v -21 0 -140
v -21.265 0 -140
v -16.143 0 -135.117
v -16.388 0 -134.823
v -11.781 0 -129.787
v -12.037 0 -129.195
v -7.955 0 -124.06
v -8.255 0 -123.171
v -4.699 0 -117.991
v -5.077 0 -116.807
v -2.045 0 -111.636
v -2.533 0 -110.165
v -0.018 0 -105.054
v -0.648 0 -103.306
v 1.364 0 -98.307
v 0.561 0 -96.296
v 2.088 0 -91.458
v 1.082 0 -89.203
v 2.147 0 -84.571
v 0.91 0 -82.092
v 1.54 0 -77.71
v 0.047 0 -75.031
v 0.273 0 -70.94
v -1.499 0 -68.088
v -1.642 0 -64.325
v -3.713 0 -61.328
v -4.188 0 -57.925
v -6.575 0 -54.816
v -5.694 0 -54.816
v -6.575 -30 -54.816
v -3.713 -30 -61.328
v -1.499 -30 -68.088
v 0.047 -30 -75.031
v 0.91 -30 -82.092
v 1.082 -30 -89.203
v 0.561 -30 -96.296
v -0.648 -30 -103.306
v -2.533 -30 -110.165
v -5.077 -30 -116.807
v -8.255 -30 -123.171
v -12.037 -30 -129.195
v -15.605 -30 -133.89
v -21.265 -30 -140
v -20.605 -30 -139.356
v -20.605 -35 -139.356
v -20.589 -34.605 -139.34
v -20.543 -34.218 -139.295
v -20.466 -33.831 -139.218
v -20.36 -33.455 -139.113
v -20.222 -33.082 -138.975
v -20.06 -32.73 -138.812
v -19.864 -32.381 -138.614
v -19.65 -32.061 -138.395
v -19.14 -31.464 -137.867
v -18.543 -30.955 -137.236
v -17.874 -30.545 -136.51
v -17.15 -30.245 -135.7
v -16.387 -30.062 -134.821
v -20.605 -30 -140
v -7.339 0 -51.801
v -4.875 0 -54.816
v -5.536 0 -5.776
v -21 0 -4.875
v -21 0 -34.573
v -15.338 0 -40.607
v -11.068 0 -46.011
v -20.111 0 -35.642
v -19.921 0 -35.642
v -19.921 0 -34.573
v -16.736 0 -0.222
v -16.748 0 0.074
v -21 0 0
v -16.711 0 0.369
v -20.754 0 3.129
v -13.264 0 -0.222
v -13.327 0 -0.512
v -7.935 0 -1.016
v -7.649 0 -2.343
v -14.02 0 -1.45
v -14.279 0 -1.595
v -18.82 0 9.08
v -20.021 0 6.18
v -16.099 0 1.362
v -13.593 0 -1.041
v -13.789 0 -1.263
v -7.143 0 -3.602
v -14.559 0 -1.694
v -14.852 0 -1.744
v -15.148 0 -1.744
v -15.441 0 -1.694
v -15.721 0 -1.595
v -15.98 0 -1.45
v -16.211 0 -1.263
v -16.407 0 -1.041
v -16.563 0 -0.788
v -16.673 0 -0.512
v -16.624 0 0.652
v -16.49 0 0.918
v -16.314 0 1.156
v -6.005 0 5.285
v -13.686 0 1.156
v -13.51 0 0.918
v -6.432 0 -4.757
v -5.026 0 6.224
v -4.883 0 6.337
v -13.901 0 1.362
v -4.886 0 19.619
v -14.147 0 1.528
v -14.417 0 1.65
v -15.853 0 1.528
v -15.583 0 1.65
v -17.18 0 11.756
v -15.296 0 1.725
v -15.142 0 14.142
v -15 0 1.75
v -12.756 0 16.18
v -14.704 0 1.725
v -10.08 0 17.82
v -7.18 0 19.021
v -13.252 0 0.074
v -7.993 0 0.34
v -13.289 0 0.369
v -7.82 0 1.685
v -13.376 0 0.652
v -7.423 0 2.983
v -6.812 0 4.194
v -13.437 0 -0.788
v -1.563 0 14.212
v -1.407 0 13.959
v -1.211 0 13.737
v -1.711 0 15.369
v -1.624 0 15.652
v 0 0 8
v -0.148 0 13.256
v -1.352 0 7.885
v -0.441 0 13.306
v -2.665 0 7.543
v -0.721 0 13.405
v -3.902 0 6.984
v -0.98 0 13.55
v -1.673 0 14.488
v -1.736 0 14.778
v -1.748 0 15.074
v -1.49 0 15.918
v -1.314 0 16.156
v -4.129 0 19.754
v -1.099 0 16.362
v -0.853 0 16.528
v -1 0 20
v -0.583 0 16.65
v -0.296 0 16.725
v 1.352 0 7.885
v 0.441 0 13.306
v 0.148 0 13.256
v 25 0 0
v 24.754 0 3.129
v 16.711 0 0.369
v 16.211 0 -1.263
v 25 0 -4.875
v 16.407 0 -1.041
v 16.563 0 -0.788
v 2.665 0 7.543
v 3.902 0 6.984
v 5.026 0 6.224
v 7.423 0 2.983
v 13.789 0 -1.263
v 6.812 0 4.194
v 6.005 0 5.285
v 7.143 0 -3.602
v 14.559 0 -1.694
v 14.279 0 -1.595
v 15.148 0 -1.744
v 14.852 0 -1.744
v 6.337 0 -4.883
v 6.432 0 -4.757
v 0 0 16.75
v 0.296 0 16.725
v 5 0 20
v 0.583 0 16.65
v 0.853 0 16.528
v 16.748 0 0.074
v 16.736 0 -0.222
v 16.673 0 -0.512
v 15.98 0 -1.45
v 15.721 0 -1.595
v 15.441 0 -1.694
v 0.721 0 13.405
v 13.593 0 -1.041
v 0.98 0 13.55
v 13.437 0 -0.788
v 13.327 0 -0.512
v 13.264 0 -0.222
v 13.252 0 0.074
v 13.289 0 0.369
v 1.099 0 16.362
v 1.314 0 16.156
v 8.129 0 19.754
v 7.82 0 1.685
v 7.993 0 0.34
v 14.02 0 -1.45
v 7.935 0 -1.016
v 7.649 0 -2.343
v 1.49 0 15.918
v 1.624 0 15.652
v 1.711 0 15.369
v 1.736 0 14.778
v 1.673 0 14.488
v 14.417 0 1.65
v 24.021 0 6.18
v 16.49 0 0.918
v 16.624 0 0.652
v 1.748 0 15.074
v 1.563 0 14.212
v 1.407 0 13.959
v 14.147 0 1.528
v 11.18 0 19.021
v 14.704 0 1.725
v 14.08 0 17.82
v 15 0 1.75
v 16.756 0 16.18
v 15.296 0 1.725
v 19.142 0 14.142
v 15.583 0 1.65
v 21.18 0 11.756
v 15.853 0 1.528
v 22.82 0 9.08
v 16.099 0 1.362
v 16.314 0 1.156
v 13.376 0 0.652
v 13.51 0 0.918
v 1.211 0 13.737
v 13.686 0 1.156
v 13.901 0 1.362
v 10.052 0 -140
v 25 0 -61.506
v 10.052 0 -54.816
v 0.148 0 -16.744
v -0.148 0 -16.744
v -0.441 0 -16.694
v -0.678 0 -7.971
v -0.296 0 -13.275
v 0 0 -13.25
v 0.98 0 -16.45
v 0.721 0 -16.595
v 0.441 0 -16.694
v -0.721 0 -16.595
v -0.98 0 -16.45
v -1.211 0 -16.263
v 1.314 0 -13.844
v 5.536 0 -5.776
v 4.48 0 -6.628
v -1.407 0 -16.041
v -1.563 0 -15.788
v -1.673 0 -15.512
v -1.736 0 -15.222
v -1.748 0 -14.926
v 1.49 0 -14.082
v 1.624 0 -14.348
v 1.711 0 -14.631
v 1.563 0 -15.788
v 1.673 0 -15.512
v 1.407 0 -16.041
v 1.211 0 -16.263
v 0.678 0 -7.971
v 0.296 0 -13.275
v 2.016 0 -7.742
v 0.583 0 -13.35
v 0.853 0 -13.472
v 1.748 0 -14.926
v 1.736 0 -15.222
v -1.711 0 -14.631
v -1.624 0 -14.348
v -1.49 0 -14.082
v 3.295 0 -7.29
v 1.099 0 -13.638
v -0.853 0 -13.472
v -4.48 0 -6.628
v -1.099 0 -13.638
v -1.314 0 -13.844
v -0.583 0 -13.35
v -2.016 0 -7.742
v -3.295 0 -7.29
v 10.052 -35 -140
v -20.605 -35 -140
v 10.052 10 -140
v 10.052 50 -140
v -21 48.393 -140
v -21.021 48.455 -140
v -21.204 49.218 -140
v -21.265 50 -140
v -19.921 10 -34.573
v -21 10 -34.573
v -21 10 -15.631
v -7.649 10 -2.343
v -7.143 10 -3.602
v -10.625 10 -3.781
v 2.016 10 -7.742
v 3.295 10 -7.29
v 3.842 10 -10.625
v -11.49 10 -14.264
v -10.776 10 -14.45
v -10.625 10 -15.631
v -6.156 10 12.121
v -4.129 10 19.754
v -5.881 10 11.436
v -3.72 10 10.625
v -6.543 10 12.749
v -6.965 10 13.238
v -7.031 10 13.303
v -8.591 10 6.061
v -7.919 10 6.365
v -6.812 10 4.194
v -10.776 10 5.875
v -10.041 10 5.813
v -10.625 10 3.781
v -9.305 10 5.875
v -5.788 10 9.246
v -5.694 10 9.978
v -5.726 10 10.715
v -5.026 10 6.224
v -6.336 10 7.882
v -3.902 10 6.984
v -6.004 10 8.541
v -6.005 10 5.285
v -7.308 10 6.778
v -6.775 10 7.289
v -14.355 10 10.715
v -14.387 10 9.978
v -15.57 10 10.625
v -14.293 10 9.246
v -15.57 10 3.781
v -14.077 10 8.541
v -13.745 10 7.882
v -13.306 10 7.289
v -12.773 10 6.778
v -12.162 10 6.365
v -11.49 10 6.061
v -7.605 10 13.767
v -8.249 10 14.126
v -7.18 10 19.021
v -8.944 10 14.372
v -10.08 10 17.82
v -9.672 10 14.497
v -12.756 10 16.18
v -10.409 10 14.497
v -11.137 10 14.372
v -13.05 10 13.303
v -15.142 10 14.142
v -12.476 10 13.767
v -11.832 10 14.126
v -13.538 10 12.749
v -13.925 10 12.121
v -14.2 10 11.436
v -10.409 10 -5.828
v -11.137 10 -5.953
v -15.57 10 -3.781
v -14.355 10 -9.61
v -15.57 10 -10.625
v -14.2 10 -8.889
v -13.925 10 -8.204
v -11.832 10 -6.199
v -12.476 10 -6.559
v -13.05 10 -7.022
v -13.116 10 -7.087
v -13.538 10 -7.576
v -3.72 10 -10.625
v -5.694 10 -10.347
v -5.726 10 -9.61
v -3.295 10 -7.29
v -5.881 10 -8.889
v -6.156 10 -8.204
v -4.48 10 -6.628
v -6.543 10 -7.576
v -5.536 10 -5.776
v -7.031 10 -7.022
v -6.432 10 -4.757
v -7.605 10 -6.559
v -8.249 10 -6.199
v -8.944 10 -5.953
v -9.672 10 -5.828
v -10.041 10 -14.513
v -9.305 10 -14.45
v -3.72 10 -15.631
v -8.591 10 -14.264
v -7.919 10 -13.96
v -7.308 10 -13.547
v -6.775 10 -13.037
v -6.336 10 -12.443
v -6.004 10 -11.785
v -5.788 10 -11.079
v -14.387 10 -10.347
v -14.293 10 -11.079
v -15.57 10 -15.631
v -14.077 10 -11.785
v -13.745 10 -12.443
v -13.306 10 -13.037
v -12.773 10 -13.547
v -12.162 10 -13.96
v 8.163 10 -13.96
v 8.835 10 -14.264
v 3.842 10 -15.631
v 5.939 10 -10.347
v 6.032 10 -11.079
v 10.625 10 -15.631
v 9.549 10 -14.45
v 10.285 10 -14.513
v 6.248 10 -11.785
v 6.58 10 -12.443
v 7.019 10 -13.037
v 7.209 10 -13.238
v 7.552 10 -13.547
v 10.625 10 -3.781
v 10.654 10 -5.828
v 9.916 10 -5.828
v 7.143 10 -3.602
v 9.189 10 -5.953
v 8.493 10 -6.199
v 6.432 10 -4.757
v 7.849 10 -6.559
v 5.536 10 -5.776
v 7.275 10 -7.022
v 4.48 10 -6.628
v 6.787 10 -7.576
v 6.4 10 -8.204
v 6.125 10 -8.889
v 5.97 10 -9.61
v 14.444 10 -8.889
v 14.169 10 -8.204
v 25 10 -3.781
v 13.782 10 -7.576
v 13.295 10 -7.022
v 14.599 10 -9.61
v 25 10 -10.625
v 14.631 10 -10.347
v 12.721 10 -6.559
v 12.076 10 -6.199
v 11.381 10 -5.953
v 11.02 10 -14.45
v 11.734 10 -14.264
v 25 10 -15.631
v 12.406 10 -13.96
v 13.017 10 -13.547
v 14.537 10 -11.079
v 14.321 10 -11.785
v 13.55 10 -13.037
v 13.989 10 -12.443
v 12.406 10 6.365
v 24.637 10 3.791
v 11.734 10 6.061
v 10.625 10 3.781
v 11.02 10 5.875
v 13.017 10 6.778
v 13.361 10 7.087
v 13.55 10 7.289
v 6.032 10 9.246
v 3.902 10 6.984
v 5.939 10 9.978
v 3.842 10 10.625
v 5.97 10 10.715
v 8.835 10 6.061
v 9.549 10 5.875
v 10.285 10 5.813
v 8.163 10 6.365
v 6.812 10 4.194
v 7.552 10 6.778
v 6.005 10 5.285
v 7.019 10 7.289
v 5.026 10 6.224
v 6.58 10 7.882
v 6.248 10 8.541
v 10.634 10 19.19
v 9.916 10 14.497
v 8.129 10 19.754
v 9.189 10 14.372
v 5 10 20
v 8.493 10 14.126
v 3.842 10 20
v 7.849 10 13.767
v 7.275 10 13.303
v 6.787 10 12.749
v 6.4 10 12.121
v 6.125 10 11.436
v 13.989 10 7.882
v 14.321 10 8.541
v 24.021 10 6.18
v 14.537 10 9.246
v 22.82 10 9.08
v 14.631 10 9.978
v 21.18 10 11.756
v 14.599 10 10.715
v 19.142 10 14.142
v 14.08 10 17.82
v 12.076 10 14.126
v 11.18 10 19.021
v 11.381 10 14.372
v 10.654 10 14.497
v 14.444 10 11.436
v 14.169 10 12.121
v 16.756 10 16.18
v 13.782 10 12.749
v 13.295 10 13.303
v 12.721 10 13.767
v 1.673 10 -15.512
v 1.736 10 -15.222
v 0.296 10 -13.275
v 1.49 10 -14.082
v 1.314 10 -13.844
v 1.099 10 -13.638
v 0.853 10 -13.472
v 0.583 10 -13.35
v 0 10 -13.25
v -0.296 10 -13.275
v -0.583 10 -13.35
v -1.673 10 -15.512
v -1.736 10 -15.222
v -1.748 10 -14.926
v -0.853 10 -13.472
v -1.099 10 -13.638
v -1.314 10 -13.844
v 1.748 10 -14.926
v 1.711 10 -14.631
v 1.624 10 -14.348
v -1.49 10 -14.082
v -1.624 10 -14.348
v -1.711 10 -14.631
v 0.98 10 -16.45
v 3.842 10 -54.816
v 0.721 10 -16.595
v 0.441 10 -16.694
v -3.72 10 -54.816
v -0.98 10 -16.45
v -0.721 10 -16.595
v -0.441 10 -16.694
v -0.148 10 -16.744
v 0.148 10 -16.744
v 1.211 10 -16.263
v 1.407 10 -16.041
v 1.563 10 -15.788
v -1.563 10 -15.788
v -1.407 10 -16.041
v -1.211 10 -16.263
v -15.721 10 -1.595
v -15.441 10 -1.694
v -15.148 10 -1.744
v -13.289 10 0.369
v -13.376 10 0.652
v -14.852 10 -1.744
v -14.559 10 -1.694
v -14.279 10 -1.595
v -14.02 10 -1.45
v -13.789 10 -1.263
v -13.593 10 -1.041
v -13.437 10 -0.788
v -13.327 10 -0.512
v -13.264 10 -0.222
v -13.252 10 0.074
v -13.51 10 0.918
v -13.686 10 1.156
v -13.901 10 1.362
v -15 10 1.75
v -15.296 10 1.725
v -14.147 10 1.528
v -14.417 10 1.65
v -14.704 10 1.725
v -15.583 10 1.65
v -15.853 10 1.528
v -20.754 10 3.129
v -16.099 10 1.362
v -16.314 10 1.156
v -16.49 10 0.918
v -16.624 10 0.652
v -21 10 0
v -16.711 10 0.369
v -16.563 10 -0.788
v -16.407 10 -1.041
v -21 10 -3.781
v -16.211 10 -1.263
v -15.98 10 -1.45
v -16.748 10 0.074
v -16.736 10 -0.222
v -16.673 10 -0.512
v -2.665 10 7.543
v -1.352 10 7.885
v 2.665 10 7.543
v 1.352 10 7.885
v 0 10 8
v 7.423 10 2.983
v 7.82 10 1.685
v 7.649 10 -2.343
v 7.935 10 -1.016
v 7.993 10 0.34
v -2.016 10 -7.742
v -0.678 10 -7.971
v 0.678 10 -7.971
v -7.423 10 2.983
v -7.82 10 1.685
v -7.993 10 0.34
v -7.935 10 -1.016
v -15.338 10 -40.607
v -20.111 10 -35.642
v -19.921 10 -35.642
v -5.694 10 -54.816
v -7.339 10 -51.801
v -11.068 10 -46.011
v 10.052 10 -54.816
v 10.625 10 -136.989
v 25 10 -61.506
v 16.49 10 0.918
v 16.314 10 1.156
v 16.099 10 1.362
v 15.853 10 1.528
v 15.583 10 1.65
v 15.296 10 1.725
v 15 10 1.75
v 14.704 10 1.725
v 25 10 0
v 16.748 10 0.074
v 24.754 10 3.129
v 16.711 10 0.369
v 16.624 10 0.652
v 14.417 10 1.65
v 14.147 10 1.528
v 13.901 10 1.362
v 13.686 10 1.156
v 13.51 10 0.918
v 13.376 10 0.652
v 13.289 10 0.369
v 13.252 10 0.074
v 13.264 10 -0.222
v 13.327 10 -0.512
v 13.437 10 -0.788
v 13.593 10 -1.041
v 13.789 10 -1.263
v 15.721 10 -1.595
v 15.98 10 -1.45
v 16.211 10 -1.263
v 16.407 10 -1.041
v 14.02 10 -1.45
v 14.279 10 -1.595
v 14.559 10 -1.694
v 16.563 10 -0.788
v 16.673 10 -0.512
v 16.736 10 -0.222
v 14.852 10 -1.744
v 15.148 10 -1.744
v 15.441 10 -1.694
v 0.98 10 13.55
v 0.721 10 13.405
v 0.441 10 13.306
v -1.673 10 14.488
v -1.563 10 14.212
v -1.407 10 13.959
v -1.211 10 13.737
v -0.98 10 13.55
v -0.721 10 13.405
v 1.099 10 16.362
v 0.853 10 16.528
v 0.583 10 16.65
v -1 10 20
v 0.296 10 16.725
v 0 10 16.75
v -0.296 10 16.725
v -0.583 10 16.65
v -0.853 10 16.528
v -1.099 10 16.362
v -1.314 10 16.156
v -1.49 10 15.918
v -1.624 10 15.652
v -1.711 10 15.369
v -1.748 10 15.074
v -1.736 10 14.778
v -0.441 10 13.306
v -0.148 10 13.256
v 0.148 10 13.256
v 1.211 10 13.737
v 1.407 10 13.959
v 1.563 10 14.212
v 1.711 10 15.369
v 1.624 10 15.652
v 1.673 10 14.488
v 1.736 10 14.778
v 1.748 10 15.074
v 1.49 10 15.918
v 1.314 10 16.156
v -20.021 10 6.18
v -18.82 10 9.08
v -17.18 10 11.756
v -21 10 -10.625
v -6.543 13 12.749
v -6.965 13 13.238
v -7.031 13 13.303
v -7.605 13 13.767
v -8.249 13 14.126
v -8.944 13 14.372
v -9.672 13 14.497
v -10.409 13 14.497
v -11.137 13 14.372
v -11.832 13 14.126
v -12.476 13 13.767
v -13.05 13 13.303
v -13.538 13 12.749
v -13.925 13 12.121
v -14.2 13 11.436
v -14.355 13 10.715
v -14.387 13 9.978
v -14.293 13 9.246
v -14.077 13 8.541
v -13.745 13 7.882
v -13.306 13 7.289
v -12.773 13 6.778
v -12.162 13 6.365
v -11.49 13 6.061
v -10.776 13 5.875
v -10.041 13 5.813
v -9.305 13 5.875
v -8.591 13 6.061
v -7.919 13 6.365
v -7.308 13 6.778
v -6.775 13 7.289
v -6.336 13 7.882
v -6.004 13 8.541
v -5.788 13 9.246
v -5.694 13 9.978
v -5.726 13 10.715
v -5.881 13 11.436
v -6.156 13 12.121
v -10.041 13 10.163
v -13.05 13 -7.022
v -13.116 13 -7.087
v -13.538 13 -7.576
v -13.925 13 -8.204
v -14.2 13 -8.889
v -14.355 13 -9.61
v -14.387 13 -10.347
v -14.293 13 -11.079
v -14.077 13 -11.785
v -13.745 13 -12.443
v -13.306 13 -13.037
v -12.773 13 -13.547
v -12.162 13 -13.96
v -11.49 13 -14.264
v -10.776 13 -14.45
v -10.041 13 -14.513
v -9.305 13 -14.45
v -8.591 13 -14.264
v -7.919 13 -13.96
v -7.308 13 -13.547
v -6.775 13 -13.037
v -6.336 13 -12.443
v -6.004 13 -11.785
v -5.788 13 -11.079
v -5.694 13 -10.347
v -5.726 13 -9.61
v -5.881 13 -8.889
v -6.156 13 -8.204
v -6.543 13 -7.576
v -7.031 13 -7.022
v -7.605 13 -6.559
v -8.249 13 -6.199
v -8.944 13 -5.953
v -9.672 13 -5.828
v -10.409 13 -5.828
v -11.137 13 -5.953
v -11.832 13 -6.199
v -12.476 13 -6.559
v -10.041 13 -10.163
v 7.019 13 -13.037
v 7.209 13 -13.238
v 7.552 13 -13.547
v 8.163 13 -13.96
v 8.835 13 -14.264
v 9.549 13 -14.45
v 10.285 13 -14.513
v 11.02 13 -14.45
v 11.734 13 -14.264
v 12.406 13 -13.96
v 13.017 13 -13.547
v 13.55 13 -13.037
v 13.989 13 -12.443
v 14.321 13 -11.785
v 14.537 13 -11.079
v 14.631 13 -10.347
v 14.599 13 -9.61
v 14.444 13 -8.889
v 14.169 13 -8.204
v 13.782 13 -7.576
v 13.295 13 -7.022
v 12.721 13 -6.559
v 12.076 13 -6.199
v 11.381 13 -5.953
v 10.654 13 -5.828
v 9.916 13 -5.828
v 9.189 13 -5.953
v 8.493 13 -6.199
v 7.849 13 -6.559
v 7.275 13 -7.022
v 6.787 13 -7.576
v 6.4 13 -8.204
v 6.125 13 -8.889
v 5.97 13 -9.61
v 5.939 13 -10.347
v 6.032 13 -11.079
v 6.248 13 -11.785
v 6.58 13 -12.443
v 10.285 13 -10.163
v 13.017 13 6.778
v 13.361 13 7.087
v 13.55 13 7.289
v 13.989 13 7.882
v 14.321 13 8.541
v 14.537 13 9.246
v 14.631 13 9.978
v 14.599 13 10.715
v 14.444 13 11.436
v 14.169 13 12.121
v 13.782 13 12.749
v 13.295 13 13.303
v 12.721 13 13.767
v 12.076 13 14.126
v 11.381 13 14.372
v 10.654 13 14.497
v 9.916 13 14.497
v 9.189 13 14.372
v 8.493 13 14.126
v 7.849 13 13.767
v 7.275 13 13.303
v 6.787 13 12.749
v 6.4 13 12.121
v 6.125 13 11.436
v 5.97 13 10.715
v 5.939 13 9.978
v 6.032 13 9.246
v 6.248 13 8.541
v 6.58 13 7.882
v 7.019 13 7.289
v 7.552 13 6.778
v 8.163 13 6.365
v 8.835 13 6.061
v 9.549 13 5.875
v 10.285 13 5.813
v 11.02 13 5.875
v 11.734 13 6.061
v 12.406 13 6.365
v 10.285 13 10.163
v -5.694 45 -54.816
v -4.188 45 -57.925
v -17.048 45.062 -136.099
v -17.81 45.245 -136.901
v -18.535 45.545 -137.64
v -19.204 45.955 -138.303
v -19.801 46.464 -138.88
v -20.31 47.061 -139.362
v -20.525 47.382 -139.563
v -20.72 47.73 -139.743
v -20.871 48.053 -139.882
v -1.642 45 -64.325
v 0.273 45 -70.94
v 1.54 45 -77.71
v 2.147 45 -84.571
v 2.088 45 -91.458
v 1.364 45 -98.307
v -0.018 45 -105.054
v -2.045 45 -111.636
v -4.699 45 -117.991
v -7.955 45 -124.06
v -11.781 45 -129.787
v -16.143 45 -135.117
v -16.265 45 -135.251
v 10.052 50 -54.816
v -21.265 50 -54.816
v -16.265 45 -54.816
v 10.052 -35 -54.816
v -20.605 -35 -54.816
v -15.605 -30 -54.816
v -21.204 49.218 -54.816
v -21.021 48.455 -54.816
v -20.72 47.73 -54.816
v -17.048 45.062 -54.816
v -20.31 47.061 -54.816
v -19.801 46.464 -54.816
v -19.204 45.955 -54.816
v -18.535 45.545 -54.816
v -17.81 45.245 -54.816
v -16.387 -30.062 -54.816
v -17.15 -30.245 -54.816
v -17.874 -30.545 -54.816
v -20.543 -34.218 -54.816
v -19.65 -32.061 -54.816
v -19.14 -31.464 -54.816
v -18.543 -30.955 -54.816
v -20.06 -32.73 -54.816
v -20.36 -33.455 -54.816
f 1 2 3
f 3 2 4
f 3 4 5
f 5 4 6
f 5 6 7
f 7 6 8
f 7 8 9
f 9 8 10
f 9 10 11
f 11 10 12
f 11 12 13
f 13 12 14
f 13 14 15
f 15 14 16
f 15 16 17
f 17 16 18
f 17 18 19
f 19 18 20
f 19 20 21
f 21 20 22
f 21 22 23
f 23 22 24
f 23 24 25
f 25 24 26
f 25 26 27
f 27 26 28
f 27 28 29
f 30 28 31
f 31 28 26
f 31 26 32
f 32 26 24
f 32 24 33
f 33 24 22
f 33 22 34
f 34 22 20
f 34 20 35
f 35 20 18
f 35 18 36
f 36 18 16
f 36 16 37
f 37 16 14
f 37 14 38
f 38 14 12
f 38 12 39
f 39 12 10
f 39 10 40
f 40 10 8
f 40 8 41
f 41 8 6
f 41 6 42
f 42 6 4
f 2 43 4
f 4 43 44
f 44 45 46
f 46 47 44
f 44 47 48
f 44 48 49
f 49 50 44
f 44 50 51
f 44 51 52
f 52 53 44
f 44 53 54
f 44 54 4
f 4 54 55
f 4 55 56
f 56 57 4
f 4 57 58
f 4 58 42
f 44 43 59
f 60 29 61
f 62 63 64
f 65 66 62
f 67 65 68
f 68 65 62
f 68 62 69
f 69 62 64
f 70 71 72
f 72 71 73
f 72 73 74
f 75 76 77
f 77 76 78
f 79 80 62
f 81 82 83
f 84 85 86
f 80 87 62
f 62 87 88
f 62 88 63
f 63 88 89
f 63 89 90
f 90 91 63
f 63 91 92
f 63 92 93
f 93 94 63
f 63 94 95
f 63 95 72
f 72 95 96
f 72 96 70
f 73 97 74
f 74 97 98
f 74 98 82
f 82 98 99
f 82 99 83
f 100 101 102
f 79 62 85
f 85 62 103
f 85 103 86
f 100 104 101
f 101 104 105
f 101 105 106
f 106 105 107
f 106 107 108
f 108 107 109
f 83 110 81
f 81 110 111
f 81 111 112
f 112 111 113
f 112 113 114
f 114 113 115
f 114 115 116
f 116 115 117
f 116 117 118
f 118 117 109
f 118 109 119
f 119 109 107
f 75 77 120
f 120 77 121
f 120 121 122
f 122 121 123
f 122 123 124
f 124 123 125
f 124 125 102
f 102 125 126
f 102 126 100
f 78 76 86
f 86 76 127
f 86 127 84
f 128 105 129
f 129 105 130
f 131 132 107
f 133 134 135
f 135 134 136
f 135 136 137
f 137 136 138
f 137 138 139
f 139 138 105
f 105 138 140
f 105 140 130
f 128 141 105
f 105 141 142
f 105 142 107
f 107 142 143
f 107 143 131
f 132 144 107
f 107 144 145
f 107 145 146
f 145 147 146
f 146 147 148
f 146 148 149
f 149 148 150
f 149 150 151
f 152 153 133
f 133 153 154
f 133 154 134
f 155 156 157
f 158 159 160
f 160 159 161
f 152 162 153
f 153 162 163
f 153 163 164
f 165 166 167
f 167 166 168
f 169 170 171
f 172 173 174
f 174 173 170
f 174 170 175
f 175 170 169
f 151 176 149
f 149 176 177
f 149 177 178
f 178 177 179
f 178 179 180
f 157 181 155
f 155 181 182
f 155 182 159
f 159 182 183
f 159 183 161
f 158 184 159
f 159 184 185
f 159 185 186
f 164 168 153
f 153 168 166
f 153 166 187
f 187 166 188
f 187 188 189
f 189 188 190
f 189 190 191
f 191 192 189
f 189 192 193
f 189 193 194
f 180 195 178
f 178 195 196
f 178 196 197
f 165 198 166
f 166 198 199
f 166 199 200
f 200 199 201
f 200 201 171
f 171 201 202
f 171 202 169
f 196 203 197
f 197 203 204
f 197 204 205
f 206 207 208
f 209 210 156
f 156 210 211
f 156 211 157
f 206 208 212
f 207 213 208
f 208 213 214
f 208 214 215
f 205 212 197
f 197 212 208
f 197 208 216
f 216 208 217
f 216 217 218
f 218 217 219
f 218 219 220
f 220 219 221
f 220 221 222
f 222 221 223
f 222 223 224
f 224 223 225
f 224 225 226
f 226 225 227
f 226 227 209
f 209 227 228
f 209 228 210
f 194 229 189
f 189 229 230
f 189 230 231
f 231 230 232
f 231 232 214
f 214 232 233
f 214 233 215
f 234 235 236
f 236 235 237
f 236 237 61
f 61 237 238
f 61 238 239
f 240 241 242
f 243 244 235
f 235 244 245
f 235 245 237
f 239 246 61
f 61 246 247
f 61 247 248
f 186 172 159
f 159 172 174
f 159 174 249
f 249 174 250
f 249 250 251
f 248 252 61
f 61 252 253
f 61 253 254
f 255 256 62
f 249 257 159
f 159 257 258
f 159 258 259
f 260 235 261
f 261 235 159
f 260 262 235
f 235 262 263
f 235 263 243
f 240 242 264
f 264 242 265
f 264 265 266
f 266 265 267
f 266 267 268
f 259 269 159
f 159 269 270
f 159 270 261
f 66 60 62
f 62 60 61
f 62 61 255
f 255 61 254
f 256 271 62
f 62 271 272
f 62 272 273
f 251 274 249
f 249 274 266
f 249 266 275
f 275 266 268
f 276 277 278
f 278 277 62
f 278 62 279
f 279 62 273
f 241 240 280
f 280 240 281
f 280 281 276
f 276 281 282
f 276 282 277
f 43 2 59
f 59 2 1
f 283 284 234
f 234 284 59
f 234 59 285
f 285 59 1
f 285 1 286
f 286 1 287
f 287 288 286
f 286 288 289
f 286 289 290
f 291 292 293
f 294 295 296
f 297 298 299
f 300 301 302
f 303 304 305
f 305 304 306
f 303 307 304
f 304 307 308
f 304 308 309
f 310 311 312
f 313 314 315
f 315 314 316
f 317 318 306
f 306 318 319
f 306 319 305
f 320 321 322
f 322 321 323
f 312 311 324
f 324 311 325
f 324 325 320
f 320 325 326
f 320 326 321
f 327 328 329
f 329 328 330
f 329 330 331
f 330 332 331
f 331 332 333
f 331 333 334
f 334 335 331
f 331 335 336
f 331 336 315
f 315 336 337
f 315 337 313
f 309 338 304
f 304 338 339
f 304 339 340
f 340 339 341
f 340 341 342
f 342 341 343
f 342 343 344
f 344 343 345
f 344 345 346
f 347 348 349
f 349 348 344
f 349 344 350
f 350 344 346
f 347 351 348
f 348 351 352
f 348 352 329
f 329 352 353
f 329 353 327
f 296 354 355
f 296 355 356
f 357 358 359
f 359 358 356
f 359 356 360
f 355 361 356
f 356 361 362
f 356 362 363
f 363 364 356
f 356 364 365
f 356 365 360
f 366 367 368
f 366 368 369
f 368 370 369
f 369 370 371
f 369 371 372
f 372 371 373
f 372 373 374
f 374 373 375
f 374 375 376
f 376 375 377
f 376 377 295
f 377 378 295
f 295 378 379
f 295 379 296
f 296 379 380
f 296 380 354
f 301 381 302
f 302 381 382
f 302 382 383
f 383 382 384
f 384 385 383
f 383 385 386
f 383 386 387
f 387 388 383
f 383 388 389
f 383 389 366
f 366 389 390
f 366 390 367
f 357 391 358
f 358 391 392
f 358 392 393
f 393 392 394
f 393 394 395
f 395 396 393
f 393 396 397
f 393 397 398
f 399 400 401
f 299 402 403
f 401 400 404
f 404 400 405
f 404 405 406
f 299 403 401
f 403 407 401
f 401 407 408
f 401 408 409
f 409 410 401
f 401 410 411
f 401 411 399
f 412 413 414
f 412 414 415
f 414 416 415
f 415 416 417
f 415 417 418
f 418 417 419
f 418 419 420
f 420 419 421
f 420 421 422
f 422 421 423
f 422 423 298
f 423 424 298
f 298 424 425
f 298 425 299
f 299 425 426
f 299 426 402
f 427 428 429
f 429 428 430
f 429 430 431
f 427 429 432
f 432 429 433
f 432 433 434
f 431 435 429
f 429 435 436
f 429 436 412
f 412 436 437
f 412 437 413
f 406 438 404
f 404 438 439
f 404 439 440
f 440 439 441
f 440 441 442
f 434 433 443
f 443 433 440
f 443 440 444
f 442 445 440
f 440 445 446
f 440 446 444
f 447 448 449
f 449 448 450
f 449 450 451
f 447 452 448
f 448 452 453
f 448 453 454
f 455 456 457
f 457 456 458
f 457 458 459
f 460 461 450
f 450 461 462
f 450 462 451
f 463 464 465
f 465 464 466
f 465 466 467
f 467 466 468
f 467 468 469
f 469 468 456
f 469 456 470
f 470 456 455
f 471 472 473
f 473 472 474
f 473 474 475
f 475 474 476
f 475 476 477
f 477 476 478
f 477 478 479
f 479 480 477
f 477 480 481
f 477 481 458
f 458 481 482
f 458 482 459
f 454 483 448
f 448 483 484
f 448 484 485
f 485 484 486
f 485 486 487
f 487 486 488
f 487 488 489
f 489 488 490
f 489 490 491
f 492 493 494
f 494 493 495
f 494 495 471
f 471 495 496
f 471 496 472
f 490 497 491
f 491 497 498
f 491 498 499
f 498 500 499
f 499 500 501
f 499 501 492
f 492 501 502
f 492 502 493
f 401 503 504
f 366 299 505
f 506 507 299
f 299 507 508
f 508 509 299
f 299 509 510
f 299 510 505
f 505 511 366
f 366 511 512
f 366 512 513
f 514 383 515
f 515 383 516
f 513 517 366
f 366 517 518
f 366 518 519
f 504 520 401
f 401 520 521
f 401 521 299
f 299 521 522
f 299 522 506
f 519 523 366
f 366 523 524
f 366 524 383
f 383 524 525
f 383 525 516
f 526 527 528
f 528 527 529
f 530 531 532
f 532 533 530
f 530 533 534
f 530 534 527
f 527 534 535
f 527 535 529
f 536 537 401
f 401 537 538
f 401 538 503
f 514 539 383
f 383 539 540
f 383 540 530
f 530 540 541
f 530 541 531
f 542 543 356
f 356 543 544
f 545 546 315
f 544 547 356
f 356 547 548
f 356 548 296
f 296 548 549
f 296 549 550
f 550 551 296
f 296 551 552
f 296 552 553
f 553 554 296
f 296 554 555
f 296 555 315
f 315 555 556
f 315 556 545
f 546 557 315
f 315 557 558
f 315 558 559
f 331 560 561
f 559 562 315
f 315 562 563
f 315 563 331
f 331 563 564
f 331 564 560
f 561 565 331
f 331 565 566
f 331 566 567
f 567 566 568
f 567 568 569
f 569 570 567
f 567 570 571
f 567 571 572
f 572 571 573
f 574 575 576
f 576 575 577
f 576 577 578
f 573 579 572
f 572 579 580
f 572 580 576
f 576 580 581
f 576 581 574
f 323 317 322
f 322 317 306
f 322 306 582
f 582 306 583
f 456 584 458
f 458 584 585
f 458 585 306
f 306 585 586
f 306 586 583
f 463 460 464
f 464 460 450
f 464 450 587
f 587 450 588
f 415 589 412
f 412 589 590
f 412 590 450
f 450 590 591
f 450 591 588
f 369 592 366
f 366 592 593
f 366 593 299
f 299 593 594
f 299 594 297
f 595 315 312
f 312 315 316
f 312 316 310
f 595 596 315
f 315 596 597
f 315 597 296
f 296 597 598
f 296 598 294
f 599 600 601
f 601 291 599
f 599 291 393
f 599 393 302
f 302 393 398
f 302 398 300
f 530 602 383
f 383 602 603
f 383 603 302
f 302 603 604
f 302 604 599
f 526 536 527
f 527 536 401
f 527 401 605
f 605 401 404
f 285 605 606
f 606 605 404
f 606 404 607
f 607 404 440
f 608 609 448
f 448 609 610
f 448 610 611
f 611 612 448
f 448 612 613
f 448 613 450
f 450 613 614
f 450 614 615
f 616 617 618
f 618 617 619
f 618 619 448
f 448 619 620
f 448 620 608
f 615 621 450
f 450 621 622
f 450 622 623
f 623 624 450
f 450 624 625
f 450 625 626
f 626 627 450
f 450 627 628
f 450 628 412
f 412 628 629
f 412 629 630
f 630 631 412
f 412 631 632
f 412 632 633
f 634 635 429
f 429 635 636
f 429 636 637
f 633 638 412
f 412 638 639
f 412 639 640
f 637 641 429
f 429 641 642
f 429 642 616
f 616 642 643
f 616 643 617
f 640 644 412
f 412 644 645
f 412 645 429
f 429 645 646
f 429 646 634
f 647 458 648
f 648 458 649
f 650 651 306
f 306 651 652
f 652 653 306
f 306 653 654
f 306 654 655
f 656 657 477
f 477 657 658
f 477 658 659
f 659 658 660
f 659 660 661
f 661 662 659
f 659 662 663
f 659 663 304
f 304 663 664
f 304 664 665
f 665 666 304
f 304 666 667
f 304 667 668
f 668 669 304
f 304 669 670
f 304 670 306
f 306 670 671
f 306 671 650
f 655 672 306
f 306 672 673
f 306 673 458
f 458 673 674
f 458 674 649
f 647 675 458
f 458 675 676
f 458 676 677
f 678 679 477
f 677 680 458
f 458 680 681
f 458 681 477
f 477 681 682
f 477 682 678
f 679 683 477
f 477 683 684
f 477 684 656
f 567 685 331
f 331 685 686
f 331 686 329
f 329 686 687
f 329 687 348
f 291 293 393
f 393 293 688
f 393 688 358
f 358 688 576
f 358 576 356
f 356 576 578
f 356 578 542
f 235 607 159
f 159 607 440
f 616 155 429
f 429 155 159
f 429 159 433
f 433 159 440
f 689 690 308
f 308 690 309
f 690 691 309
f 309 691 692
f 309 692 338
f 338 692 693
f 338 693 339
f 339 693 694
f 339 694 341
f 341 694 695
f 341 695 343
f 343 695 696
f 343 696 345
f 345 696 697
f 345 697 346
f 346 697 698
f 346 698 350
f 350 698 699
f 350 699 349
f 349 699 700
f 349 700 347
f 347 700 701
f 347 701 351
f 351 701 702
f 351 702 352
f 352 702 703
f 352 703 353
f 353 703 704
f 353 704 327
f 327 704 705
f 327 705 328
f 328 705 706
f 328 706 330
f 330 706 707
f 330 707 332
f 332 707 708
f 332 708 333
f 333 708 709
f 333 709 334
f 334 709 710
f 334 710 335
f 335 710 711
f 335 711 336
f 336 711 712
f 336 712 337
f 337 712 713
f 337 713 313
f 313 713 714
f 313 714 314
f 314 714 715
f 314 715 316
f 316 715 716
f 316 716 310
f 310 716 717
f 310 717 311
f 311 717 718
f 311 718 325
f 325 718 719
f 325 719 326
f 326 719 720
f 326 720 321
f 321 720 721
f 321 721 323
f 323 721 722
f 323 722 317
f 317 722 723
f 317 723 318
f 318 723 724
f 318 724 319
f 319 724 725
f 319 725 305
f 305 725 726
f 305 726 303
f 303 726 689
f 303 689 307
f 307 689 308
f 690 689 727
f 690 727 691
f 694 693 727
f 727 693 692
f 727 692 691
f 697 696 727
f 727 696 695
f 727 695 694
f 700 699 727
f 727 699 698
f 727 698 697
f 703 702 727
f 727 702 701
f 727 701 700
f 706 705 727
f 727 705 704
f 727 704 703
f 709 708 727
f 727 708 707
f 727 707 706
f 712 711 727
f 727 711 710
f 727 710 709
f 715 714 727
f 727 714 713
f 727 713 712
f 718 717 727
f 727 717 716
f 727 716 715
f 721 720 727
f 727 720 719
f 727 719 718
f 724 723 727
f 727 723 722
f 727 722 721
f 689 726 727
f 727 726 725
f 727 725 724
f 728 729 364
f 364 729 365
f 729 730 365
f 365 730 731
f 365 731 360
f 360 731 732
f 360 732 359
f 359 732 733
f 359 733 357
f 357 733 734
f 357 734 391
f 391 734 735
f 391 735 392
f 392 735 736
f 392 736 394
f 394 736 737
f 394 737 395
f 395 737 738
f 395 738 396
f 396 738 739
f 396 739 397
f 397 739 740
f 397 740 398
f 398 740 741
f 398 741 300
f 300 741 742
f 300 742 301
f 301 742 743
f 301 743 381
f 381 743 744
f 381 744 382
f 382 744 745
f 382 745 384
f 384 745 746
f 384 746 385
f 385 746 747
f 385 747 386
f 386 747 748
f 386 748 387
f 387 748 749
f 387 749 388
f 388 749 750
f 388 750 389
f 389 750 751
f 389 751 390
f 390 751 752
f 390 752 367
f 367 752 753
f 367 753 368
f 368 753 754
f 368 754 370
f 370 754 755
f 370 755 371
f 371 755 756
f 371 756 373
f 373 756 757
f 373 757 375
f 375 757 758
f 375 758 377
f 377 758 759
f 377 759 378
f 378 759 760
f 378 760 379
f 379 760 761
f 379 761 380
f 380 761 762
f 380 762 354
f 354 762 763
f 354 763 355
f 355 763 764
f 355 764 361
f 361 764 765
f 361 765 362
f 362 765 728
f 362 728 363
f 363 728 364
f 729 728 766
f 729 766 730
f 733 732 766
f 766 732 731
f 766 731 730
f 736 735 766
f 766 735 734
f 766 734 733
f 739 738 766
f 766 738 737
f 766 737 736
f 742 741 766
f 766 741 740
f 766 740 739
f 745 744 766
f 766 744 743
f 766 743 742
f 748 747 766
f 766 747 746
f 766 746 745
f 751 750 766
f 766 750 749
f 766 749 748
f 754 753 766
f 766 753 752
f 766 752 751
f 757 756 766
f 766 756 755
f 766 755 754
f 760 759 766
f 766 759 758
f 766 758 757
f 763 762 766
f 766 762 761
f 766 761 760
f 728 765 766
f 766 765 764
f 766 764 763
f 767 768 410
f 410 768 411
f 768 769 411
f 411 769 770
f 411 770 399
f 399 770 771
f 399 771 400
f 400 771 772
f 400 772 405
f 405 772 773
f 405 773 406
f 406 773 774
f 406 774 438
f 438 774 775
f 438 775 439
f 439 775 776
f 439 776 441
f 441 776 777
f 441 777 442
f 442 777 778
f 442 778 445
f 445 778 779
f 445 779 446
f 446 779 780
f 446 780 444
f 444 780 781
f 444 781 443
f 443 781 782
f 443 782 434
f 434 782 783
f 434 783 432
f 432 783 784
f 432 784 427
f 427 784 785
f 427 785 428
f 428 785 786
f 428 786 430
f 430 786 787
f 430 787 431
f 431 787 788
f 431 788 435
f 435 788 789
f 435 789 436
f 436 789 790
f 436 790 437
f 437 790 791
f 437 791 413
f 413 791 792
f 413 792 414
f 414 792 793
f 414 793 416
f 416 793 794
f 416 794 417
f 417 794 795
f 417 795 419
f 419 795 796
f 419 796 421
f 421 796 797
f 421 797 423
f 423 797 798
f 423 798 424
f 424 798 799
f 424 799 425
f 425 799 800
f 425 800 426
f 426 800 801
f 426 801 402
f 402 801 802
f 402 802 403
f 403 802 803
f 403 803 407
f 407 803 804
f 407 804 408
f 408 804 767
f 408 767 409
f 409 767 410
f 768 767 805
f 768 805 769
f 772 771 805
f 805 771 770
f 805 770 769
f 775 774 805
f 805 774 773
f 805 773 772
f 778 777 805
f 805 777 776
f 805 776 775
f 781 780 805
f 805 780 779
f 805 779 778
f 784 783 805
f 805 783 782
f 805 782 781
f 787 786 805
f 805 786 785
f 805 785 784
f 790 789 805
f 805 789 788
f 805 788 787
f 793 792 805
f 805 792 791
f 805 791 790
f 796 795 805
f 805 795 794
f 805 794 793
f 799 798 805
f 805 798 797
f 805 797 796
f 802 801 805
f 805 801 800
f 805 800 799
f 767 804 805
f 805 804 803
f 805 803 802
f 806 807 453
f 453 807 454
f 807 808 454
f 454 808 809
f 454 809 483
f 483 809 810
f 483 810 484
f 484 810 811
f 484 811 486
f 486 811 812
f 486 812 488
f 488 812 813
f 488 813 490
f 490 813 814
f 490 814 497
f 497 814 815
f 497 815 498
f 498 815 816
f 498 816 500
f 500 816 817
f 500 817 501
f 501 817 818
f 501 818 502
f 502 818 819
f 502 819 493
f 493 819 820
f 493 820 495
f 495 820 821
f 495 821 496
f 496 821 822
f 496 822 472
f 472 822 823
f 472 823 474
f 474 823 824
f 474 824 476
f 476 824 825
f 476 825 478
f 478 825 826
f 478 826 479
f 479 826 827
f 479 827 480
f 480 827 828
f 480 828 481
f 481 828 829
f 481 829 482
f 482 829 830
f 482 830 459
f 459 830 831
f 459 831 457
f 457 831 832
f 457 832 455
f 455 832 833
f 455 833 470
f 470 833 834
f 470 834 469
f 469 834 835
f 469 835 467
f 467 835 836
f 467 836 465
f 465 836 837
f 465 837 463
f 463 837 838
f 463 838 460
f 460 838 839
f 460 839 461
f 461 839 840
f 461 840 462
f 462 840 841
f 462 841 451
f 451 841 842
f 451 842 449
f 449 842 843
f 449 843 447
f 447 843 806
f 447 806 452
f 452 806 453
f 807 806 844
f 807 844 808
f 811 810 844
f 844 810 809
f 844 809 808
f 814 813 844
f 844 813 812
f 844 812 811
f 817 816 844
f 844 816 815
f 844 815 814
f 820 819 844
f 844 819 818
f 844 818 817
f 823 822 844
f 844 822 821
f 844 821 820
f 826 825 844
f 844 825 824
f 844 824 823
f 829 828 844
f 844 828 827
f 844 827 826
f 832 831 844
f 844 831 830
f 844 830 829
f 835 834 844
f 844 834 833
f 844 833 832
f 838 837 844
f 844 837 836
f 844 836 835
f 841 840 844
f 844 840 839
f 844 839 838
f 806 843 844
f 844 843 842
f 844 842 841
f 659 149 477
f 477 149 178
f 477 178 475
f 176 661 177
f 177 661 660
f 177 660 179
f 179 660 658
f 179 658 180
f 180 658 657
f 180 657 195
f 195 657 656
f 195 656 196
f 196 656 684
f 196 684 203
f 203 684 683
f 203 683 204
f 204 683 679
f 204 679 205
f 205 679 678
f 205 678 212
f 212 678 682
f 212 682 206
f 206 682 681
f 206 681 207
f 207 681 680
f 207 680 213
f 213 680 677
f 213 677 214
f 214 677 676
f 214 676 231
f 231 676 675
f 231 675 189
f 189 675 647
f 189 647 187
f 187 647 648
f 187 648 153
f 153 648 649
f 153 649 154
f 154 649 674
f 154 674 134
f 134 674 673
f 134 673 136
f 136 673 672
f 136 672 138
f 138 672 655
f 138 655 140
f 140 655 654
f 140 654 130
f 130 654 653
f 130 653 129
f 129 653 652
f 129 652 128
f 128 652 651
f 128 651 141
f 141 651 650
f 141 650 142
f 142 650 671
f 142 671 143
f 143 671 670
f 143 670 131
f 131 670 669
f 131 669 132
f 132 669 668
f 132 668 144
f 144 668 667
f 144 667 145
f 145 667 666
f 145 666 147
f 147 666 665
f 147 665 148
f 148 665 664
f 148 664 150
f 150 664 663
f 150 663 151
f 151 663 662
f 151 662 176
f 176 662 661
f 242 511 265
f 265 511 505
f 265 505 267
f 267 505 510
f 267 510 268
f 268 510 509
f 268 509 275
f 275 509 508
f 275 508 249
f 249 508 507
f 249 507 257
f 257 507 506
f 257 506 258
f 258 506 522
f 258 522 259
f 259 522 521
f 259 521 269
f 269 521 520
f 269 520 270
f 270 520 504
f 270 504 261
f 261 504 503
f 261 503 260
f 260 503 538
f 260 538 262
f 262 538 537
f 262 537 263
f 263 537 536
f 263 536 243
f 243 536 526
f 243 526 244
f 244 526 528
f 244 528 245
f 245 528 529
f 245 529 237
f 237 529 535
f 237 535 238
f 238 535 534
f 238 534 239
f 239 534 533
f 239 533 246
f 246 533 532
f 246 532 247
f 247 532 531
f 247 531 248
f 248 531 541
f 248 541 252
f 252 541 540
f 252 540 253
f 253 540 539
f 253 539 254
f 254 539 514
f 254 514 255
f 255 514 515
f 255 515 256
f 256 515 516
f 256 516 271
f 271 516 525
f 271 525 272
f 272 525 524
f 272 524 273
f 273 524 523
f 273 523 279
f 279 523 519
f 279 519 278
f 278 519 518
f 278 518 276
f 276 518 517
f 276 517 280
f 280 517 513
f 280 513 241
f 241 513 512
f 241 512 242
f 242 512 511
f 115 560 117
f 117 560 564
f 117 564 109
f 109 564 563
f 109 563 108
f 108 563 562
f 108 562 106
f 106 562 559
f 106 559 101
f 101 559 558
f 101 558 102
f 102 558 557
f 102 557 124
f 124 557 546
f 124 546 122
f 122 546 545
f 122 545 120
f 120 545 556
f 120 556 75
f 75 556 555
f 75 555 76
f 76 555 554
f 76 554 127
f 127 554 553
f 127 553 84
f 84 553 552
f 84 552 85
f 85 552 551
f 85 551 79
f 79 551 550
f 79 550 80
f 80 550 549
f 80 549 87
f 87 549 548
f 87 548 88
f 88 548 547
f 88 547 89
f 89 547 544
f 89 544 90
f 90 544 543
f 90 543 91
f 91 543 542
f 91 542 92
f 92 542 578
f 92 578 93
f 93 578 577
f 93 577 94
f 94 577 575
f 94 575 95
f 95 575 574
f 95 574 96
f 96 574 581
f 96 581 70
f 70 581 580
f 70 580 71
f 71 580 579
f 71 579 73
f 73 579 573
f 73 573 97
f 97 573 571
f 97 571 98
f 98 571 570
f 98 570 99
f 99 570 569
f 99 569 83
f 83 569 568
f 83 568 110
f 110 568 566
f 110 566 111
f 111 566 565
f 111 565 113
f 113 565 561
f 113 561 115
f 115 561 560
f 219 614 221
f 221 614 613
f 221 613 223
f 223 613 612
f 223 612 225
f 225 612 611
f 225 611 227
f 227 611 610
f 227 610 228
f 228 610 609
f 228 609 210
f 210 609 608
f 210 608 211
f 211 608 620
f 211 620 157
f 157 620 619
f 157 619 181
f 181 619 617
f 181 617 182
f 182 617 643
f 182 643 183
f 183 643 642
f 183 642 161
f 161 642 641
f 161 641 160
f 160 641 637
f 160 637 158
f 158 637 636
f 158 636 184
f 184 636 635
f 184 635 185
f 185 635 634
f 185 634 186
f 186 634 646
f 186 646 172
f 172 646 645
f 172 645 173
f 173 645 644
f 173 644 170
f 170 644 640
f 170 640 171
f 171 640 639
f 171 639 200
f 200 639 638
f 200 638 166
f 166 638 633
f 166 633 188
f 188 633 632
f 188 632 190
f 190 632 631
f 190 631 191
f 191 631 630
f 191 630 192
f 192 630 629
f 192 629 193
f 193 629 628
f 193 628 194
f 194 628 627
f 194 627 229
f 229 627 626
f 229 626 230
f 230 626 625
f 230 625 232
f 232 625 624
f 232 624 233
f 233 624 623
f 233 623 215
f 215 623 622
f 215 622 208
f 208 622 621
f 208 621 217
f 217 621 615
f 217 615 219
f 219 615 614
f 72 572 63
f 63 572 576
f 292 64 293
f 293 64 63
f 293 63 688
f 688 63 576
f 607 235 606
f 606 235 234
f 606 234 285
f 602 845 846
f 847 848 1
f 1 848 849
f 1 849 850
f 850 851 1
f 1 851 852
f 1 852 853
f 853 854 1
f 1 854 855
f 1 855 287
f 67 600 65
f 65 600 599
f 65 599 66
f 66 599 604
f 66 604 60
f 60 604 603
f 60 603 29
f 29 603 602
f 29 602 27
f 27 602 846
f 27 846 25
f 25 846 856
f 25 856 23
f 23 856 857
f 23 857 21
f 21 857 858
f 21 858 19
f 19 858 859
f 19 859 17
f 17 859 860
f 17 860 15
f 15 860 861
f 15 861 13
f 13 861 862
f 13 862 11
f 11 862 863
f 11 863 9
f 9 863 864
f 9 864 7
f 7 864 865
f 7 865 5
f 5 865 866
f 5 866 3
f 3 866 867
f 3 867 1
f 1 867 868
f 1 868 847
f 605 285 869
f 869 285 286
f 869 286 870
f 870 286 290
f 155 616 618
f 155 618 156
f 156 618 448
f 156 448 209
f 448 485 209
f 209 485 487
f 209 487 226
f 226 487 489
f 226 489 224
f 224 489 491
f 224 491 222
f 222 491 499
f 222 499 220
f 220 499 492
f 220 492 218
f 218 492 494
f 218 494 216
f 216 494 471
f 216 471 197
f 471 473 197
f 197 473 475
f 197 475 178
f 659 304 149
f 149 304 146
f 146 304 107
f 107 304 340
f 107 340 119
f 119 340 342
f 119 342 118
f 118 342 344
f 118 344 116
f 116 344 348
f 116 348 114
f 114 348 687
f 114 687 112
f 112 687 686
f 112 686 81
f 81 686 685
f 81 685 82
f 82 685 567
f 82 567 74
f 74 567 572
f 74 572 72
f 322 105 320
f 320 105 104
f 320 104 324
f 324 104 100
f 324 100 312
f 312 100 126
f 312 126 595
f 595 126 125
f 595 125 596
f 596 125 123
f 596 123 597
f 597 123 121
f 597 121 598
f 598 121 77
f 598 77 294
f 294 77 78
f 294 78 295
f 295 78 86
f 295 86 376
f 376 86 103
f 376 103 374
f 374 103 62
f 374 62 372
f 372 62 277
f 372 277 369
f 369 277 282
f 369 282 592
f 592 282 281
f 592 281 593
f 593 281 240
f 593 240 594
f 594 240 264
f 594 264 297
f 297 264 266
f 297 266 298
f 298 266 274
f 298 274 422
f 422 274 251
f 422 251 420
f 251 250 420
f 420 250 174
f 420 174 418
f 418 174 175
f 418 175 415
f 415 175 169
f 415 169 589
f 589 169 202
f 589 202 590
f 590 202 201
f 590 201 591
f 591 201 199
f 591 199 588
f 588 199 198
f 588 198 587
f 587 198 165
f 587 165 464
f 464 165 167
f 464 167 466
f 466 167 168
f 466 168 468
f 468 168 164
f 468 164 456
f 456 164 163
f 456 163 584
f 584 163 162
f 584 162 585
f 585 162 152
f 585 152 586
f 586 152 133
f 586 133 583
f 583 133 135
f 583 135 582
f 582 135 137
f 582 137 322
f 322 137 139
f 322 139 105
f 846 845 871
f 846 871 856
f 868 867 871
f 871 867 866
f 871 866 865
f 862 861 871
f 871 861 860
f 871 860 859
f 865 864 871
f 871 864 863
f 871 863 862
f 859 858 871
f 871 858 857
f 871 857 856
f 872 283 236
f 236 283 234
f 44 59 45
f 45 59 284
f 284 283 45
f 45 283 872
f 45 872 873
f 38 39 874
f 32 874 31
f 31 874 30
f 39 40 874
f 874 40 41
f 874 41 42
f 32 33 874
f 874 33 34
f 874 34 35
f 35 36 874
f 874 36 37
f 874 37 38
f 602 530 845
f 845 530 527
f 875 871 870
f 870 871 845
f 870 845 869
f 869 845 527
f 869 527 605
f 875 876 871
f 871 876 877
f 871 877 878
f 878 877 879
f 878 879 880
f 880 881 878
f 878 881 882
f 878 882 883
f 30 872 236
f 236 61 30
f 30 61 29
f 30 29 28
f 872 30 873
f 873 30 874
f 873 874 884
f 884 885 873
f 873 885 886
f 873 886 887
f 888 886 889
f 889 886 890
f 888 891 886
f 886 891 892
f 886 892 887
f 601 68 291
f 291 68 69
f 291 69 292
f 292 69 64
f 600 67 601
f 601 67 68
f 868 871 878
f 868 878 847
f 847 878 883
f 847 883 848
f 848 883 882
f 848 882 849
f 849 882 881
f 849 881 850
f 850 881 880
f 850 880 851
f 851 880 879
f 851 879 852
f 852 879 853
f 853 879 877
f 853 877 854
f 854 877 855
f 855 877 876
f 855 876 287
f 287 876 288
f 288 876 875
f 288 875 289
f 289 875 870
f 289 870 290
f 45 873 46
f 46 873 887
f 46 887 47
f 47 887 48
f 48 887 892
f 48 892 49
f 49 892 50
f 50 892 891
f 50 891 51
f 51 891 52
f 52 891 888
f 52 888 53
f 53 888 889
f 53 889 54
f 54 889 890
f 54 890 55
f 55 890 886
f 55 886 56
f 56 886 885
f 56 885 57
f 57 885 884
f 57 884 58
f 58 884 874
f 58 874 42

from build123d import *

# Parameters (mm, degrees)
SKETCH1_W                = 50
SKETCH1_H                = 140
BOSS_EXTRUDE1_DEPTH      = 10
SKETCH2_R                = 4.35
BOSS_EXTRUDE2_DEPTH      = 3
CIRPATTERN2_COUNT        = 8
SKETCH4_R                = 4.575
CUT_EXTRUDE3_DEPTH       = 3
SKETCH5_W                = 50
SKETCH5_H                = 10
BOSS_EXTRUDE3_DEPTH      = 70
SKETCH6_W                = 50
SKETCH6_H                = 50
CUT_EXTRUDE4_DEPTH       = 10
SKETCH7_R                = 1.75
CUT_EXTRUDE5_DEPTH       = 10
SKETCH8_W                = 4
SKETCH8_H                = 160
CUT_EXTRUDE6_DEPTH       = 10
CUT_EXTRUDE10_DEPTH      = 10
CUT_EXTRUDE9_DEPTH       = 10
SKETCH11_W               = 31.31699353
SKETCH11_H               = 105.183771494
BOSS_EXTRUDE4_DEPTH      = 40
FILLET1_R                = 20
FILLET2_R                = 20
SKETCH16_R               = 8
CUT_EXTRUDE15_DEPTH      = 10
CUT_EXTRUDE17_DEPTH      = 148.732867027
CUT_EXTRUDE17_DEPTH_BACK = 35
SKETCH18_W               = 31.31699353
SKETCH18_H               = 105.183771494
BOSS_EXTRUDE6_DEPTH      = 30
CUT_EXTRUDE20_DEPTH      = 164.171688721
CUT_EXTRUDE20_DEPTH_BACK = 30
SKETCH22_W               = 30.656149889
SKETCH22_H               = 104.820059864
BOSS_EXTRUDE7_DEPTH      = 5
SKETCH23_W               = 31.31699353
SKETCH23_H               = 20
CUT_EXTRUDE21_DEPTH      = 40
SKETCH24_W               = 30.656149889
SKETCH24_H               = 20
CUT_EXTRUDE22_DEPTH      = 35
SKETCH25_W               = 1.83885533
SKETCH25_H               = 1.068287382
CUT_EXTRUDE23_DEPTH      = 40
FILLET3_R                = 5
FILLET4_R                = 5


with BuildPart() as part:
    # Sketch1 → Boss-Extrude1 (new body)
    with BuildSketch(Plane(origin=(0, 0, 0), x_dir=(1, 0, 0), z_dir=(0, 1, 0))):
        Rectangle(SKETCH1_W, SKETCH1_H)
    extrude(amount=BOSS_EXTRUDE1_DEPTH)

    # Sketch2 → Boss-Extrude2 (add)
    with BuildSketch(Plane(origin=(0, 10, 0), x_dir=(1, 0, 0), z_dir=(0, 1, 0))):
        with Locations(Location((-14.25, 0, 0), (0, 0, 270))):
            Circle(SKETCH2_R)
    boss_extrude2 = extrude(amount=BOSS_EXTRUDE2_DEPTH)

    # CirPattern2: Boss-Extrude2 ×8 about axis
    cirpattern2_axis = Axis((0.122053198, 0, 0), (0, 1, 0))
    for i in range(1, CIRPATTERN2_COUNT):
        add(boss_extrude2.rotate(cirpattern2_axis, i * 360 / CIRPATTERN2_COUNT))

    # Sketch4 → Cut-Extrude3 (cut)
    with BuildSketch(Plane(origin=(0, 13, 0), x_dir=(1, 0, 0), z_dir=(0, 1, 0))):
        with Locations((-14.25, 0)):
            Circle(SKETCH4_R)
        with Locations((14.494106396, 0)):
            Circle(SKETCH4_R)
        with Locations((0.122053198, -14.372053198)):
            Circle(SKETCH4_R)
        with Locations((0.122053198, 14.372053198)):
            Circle(SKETCH4_R)
    extrude(amount=-CUT_EXTRUDE3_DEPTH, mode=Mode.SUBTRACT)

    # Sketch5 → Boss-Extrude3 (add)
    with BuildSketch(Plane(origin=(0, 0, -70), x_dir=(-1, 0, 0), z_dir=(0, 0, -1))):
        with Locations((0, 5)):
            Rectangle(SKETCH5_W, SKETCH5_H)
    extrude(amount=BOSS_EXTRUDE3_DEPTH)

    # Sketch6 → Cut-Extrude4 (cut)
    with BuildSketch(Plane(origin=(0, 10, 0), x_dir=(1, 0, 0), z_dir=(0, 1, 0))):
        with Locations((0, -45)):
            Rectangle(SKETCH6_W, SKETCH6_H)
    extrude(amount=-CUT_EXTRUDE4_DEPTH, mode=Mode.SUBTRACT)

    # Sketch7 → Cut-Extrude5 (cut)
    with BuildSketch(Plane(origin=(0, 10, 0), x_dir=(1, 0, 0), z_dir=(0, 1, 0))):
        with Locations(Location((15, 0, 0), (0, 0, 270))):
            Circle(SKETCH7_R)
        with Locations(Location((-15, 0, 0), (0, 0, 270))):
            Circle(SKETCH7_R)
        with Locations(Location((0, 15, 0), (0, 0, 270))):
            Circle(SKETCH7_R)
        with Locations(Location((0, -15, 0), (0, 0, 270))):
            Circle(SKETCH7_R)
    extrude(amount=-CUT_EXTRUDE5_DEPTH, mode=Mode.SUBTRACT)

    # Sketch8 → Cut-Extrude6 (cut)
    with BuildSketch(Plane(origin=(0, 10, 0), x_dir=(1, 0, 0), z_dir=(0, 1, 0))):
        with Locations((-23, 60)):
            Rectangle(SKETCH8_W, SKETCH8_H)
    extrude(amount=-CUT_EXTRUDE6_DEPTH, mode=Mode.SUBTRACT)

    # Sketch9 → Cut-Extrude10 (cut)
    with BuildSketch(Plane(origin=(0, 0, 0), x_dir=(-1, 0, 0), z_dir=(0, -1, 0))):
        Polygon((-10.051648387, 140), (-25, 61.50558626), (-25, 140), align=None)
    extrude(amount=-CUT_EXTRUDE10_DEPTH, mode=Mode.SUBTRACT)

    # Sketch10 → Cut-Extrude9 (cut)
    with BuildSketch(Plane(origin=(0, 0, 0), x_dir=(-1, 0, 0), z_dir=(0, -1, 0))):
        with BuildLine():
            Line((21, 34.816228506), (21, 140))
            ThreePointArc((21, 140), (-2.203275532, 87.408114253), (21, 34.816228506))
        make_face()
    extrude(amount=-CUT_EXTRUDE9_DEPTH, mode=Mode.SUBTRACT)

    # Sketch11 → Boss-Extrude4 (add)
    with BuildSketch(Plane(origin=(0, 10, 0), x_dir=(1, 0, 0), z_dir=(0, 1, 0))):
        with Locations((-5.606848378, 87.408114253)):
            Rectangle(SKETCH11_W, SKETCH11_H)
    extrude(amount=BOSS_EXTRUDE4_DEPTH)

    # Fillet1
    fillet1_edges = [part.edges().sort_by_distance(p)[0] for p in [
        (25, 5, 20),
    ]]
    fillet(fillet1_edges, radius=FILLET1_R)

    # Fillet2
    fillet2_edges = [part.edges().sort_by_distance(p)[0] for p in [
        (-21, 5, 20),
    ]]
    fillet(fillet2_edges, radius=FILLET2_R)

    # Sketch16 → Cut-Extrude15 (cut)
    with BuildSketch(Plane(origin=(0, 10, 0), x_dir=(1, 0, 0), z_dir=(0, 1, 0))):
        with Locations(Location((0, 0, 0), (0, 0, 270))):
            Circle(SKETCH16_R)
    extrude(amount=-CUT_EXTRUDE15_DEPTH, mode=Mode.SUBTRACT)

    # Sketch17 → Cut-Extrude17 (cut, two sides: drawn at the far end of the back side and taken through both)
    with BuildSketch(Plane(origin=(0, 10, 0), x_dir=(-1, 0, 0), z_dir=(0, -1, 0)).offset(-CUT_EXTRUDE17_DEPTH_BACK)):
        with BuildLine():
            Line((274.317595229, 371.200011147), (21, 140))
            ThreePointArc((21, 140), (-2.203275532, 87.408114253), (21, 34.816228506))
            Line((21, 34.816228506), (274.317595229, -196.383782641))
            Line((274.317595229, -196.383782641), (960.242515922, -196.383782641))
            Line((960.242515922, -196.383782641), (960.242515922, 371.200011147))
            Line((960.242515922, 371.200011147), (274.317595229, 371.200011147))
        make_face()
    extrude(amount=CUT_EXTRUDE17_DEPTH + CUT_EXTRUDE17_DEPTH_BACK, mode=Mode.SUBTRACT)

    # Sketch18 → Boss-Extrude6 (add)
    with BuildSketch(Plane(origin=(0, 0, 0), x_dir=(-1, 0, 0), z_dir=(0, -1, 0))):
        with Locations((5.606848378, 87.408114253)):
            Rectangle(SKETCH18_W, SKETCH18_H)
    extrude(amount=BOSS_EXTRUDE6_DEPTH)

    # Sketch21 → Cut-Extrude20 (cut, two sides: drawn at the far end of the back side and taken through both)
    with BuildSketch(Plane(origin=(0, -30, 0), x_dir=(-1, 0, 0), z_dir=(0, -1, 0)).offset(-CUT_EXTRUDE20_DEPTH_BACK)):
        with BuildLine():
            Line((268.426015736, 377.982607024), (21.265345143, 140))
            ThreePointArc((21.265345143, 140), (-1.103993451, 87.408114253), (21.265345143, 34.816228506))
            Line((21.265345143, 34.816228506), (268.426015736, -203.166378519))
            Line((268.426015736, -203.166378519), (954.644984679, -203.166378519))
            Line((954.644984679, -203.166378519), (954.644984679, 377.982607024))
            Line((954.644984679, 377.982607024), (268.426015736, 377.982607024))
        make_face()
    extrude(amount=CUT_EXTRUDE20_DEPTH + CUT_EXTRUDE20_DEPTH_BACK, mode=Mode.SUBTRACT)

    # Sketch22 → Boss-Extrude7 (add)
    with BuildSketch(Plane(origin=(0, -30, 0), x_dir=(-1, 0, 0), z_dir=(0, -1, 0))):
        with Locations((5.276426558, 87.589970068)):
            Rectangle(SKETCH22_W, SKETCH22_H)
    extrude(amount=BOSS_EXTRUDE7_DEPTH)

    # Sketch23 → Cut-Extrude21 (cut)
    with BuildSketch(Plane(origin=(0, 50, 0), x_dir=(1, 0, 0), z_dir=(0, 1, 0))):
        with Locations((-5.606848378, 44.816228506)):
            Rectangle(SKETCH23_W, SKETCH23_H)
    extrude(amount=-CUT_EXTRUDE21_DEPTH, mode=Mode.SUBTRACT)

    # Sketch24 → Cut-Extrude22 (cut)
    with BuildSketch(Plane(origin=(0, -35, 0), x_dir=(-1, 0, 0), z_dir=(0, -1, 0))):
        with Locations((5.276426558, 44.816228506)):
            Rectangle(SKETCH24_W, SKETCH24_H)
    extrude(amount=-CUT_EXTRUDE22_DEPTH, mode=Mode.SUBTRACT)

    # Sketch25 → Cut-Extrude23 (cut)
    with BuildSketch(Plane(origin=(0, -30, 0), x_dir=(-1, 0, 0), z_dir=(0, -1, 0))):
        with Locations((20.840871232, 35.107558697)):
            Rectangle(SKETCH25_W, SKETCH25_H)
    extrude(amount=-CUT_EXTRUDE23_DEPTH, mode=Mode.SUBTRACT)

    # Fillet3
    fillet3_edges = [part.edges().sort_by_distance(p)[0] for p in [
        (-21.265345143, 45, -97.408114253),
    ]]
    fillet(fillet3_edges, radius=FILLET3_R - 0.0001)  # a hair under: the kernel refuses the full size

    # Fillet4
    fillet4_edges = [part.edges().sort_by_distance(p)[0] for p in [
        (-20.604501502, -30, -97.085912401),
    ]]
    fillet(fillet4_edges, radius=FILLET4_R - 0.0001)  # a hair under: the kernel refuses the full size


solid = part.part
